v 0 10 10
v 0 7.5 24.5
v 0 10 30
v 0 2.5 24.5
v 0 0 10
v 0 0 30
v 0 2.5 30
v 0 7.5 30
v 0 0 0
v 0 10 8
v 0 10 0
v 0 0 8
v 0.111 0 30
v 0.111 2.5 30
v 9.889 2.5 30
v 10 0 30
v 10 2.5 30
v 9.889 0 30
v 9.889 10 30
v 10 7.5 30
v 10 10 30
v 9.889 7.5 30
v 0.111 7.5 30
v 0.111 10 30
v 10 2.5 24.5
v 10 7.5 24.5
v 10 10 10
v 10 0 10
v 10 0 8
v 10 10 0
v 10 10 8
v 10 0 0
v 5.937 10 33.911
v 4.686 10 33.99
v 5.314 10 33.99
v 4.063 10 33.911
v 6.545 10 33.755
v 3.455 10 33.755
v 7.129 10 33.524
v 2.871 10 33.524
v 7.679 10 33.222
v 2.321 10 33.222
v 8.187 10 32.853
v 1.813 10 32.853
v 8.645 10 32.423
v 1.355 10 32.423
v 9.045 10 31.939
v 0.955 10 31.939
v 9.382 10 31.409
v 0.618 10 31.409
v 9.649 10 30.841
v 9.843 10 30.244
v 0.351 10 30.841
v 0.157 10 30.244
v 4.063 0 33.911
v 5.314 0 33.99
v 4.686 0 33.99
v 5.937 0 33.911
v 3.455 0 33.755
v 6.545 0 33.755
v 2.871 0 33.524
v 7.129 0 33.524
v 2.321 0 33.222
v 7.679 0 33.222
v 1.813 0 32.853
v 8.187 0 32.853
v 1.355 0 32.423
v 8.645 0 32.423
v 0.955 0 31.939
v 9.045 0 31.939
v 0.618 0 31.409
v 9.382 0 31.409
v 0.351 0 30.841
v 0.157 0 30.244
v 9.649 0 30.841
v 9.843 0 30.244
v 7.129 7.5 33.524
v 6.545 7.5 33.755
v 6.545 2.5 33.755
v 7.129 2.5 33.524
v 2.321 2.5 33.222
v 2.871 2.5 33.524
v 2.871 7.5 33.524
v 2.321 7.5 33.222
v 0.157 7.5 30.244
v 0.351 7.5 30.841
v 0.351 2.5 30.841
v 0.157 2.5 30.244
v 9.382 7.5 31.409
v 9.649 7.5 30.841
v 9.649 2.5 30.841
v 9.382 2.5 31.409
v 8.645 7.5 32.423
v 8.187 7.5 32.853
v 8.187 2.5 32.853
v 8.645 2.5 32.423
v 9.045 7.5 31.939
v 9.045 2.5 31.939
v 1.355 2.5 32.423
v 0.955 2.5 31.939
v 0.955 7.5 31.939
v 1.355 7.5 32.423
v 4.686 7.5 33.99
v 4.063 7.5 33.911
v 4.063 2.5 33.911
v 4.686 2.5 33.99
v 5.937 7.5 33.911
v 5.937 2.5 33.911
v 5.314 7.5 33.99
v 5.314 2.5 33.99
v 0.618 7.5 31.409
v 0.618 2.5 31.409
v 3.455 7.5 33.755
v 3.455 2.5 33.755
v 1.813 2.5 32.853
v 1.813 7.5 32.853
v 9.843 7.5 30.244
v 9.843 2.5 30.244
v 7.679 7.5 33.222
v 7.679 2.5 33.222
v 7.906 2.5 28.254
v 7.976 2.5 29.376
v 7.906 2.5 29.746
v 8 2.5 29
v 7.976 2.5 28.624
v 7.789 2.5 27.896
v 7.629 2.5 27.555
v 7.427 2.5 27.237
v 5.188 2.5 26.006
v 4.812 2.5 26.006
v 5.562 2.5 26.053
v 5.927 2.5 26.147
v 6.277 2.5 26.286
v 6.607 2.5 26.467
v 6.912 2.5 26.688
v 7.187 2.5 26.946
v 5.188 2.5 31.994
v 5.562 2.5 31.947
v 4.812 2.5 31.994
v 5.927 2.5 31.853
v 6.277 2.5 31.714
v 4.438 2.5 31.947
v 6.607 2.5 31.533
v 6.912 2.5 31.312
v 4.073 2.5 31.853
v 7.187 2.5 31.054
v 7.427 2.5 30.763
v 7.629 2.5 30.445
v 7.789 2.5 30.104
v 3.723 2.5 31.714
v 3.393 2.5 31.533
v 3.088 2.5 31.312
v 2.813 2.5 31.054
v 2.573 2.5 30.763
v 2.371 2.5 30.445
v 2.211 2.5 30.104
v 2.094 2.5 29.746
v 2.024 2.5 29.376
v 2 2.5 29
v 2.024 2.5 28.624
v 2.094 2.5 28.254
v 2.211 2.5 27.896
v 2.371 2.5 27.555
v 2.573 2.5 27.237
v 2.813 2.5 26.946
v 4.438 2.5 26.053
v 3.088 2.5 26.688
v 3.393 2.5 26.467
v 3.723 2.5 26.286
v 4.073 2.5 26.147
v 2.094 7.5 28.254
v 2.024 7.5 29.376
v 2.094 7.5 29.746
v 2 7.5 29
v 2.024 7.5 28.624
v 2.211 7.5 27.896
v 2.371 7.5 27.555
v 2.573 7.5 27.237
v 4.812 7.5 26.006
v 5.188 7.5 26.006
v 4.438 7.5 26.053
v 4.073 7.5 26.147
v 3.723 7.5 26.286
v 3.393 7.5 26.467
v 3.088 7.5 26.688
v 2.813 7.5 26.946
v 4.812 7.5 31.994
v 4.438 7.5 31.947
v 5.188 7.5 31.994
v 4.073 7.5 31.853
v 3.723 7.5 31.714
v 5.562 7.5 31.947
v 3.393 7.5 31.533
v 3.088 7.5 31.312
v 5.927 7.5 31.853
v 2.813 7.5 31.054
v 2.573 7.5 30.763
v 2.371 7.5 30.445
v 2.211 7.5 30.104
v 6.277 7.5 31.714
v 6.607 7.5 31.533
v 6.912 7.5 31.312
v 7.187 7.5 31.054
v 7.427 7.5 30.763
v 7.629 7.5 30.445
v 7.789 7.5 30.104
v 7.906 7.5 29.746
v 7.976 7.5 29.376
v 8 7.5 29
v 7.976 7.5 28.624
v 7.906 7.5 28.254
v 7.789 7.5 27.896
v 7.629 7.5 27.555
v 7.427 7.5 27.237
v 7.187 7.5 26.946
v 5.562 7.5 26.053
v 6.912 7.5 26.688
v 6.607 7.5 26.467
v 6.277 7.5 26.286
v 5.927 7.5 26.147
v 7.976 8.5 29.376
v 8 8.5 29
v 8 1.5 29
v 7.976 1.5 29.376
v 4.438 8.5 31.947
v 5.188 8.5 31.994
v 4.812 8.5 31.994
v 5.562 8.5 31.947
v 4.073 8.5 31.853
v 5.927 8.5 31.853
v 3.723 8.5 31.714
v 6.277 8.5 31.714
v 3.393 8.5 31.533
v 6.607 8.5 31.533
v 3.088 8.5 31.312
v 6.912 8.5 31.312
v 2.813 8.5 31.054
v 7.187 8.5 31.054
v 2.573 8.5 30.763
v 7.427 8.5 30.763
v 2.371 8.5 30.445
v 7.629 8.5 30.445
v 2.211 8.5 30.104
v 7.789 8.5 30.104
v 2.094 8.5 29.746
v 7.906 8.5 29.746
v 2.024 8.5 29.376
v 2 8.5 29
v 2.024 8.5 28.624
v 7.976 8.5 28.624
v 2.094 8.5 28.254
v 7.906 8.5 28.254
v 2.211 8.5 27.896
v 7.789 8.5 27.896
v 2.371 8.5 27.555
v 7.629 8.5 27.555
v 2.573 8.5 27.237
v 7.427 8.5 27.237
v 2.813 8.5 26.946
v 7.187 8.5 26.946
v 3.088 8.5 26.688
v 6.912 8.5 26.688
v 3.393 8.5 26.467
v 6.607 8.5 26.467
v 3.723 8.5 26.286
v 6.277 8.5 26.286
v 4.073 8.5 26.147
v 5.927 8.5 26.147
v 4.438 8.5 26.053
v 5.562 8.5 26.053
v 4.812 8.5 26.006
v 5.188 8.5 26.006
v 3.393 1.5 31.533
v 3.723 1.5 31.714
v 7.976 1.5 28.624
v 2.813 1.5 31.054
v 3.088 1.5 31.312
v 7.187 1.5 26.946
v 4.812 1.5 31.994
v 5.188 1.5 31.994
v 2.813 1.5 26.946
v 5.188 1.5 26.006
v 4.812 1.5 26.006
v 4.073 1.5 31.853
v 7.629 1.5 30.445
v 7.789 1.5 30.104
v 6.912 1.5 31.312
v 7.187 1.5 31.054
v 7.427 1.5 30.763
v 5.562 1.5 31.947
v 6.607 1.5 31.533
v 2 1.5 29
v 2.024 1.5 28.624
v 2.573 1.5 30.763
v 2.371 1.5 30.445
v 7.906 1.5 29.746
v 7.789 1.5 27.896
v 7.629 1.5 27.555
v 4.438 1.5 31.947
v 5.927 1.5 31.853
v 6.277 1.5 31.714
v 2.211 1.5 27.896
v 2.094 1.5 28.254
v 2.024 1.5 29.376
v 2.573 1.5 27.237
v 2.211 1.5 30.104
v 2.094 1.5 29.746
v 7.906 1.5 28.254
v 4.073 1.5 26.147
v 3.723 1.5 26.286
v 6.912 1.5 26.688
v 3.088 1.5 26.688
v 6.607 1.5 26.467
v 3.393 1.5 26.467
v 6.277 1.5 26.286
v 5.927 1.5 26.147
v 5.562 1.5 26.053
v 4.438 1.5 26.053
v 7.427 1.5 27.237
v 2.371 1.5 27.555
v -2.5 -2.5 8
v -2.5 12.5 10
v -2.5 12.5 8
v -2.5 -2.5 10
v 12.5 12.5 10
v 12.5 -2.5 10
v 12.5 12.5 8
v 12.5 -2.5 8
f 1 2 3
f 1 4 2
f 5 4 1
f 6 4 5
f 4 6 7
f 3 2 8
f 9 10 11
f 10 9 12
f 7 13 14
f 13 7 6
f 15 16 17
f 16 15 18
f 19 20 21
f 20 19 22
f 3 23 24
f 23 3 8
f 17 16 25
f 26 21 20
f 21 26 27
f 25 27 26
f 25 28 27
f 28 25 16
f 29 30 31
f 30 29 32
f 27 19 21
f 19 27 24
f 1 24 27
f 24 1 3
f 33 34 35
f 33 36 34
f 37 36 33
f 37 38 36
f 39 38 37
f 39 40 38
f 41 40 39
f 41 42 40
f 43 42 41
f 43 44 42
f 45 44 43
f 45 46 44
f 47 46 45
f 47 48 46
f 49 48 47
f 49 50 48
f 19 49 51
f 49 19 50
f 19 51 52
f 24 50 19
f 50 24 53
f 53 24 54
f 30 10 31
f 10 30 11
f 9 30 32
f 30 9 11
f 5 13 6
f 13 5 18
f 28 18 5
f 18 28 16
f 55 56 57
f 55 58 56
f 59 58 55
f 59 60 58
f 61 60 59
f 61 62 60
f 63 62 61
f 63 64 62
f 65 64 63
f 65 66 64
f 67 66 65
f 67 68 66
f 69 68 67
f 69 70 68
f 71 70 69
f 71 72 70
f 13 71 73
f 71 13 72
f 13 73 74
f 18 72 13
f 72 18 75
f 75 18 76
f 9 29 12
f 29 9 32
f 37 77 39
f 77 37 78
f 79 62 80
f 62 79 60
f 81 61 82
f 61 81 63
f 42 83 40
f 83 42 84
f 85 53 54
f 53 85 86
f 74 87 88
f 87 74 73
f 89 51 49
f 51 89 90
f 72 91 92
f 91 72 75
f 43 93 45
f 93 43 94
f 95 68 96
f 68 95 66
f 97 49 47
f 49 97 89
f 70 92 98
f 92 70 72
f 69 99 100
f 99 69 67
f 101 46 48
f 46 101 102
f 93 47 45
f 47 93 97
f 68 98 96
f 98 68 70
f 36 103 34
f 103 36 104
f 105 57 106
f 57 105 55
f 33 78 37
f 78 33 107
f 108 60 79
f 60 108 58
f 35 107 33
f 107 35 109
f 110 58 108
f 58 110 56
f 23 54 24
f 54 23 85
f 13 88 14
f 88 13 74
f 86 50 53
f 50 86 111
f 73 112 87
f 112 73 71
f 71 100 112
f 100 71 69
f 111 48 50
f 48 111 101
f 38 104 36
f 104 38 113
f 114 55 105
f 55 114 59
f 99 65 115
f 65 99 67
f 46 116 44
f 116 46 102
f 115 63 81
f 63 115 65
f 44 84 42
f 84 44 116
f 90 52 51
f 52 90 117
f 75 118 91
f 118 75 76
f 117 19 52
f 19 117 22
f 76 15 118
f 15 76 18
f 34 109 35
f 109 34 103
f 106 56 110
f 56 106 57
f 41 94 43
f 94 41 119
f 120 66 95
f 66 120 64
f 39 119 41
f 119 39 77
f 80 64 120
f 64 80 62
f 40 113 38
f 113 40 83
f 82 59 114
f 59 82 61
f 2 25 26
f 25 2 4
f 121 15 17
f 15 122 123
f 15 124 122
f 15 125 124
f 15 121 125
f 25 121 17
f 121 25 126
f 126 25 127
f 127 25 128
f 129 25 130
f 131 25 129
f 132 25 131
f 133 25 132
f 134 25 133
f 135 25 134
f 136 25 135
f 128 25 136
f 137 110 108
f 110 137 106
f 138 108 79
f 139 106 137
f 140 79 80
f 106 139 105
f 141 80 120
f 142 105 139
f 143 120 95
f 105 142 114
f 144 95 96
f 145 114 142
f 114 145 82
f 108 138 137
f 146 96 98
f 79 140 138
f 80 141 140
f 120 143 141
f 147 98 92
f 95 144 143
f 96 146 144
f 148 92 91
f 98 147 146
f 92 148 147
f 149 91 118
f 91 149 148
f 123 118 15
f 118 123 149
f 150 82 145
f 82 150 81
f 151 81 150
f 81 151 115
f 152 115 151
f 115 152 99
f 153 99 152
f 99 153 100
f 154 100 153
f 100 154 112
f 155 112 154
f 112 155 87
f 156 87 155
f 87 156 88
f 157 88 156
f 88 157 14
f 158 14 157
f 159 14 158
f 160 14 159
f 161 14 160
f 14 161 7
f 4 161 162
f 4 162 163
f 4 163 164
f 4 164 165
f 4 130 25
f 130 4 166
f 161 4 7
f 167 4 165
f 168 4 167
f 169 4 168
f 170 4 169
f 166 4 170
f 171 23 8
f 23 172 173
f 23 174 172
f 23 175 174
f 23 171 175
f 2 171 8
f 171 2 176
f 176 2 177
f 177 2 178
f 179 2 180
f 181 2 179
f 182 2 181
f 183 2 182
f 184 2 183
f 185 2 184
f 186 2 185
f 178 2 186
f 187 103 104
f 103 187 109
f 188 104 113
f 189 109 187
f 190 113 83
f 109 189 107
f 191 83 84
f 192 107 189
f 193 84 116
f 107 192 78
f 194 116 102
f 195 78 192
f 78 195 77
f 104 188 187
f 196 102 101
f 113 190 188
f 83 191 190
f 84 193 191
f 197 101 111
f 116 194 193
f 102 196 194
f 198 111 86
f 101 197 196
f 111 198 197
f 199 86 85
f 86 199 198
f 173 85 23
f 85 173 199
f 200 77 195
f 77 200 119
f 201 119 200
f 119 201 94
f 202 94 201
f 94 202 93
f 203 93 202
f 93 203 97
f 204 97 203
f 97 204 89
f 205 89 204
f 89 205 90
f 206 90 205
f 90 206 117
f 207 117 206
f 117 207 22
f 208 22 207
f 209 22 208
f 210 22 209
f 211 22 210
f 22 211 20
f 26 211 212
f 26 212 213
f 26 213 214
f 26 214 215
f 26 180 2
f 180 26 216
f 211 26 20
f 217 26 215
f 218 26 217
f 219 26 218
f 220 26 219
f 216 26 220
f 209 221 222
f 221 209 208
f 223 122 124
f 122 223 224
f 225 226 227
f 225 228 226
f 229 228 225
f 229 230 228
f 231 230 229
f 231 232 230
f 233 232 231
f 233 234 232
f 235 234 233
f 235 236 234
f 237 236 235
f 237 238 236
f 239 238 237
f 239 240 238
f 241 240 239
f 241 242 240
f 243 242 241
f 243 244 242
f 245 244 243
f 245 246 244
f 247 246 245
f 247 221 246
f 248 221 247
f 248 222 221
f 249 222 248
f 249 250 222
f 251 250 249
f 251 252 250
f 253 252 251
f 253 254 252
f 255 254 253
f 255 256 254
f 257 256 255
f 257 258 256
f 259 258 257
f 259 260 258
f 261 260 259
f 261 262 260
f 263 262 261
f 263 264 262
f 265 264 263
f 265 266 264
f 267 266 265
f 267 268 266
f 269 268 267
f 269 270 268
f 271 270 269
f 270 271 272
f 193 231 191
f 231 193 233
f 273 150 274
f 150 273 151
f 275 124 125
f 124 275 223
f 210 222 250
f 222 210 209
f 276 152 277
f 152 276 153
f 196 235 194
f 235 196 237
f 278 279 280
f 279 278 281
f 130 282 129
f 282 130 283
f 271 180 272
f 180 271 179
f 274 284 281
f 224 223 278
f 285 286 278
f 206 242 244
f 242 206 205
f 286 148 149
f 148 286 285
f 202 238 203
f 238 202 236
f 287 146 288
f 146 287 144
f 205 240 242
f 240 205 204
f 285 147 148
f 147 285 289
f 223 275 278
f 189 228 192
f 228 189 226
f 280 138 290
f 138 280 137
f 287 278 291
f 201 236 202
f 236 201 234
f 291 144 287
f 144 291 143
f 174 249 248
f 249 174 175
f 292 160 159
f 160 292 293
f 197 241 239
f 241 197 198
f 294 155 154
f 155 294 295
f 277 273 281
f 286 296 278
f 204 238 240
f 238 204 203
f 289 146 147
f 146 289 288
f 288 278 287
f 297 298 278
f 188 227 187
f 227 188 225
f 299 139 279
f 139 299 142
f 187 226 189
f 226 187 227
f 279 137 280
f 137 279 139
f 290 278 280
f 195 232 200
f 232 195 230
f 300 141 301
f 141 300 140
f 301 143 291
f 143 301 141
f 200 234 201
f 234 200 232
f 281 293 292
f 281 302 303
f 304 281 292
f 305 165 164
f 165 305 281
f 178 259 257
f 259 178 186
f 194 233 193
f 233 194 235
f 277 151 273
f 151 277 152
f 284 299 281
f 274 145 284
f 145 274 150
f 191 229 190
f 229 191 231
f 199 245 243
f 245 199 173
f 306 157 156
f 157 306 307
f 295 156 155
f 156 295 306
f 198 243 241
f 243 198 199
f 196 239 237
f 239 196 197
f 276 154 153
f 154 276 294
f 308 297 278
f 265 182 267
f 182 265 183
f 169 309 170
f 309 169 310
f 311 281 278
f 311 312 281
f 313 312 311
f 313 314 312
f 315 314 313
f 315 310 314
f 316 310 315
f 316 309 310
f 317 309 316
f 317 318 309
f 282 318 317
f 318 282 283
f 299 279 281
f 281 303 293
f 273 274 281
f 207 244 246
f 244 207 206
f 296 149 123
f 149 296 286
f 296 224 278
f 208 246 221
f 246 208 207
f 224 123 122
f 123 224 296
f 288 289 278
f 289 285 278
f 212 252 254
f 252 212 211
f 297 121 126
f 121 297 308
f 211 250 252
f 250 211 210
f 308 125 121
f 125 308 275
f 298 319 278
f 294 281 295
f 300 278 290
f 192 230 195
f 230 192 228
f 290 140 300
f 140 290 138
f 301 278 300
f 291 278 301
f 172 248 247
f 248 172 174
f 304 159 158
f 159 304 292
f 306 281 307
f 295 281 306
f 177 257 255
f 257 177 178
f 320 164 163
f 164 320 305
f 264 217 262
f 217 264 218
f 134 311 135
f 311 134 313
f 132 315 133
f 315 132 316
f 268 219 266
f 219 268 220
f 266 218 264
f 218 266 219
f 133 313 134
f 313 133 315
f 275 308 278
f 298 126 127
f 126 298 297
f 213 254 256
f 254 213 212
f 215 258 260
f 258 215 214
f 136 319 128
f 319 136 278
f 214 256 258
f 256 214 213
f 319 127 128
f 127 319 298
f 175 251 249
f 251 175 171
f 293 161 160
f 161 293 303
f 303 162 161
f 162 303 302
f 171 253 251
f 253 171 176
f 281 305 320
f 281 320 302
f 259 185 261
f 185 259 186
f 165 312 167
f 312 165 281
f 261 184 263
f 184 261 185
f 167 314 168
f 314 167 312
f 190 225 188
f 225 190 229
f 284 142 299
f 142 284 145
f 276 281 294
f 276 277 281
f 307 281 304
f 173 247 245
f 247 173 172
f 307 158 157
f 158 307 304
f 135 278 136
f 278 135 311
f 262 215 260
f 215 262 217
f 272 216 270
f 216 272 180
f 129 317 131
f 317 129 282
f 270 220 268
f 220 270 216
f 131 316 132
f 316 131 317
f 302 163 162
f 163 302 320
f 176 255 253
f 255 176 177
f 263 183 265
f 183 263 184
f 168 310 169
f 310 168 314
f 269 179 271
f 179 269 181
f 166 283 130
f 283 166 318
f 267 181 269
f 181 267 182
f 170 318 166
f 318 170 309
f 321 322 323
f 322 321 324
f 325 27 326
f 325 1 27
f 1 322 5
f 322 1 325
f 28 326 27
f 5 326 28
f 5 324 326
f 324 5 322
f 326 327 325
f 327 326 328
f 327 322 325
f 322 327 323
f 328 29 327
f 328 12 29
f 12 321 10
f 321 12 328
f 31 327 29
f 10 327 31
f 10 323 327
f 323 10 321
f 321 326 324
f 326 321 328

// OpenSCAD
//componente singolo danneggiato.
difference(){
difference(){
union(){
cube([10,10,30]);//corpo centrale
translate([5,10,29])rotate([90,0,0])cylinder(10,5,5,$fn=50);//arco
}
translate([-1,2.5,24.5]) cube([12,5,10]);//parallelepipedo sottratto dal cilidro, per formare i due pezzi separati
}
translate([5,8.5,29])rotate([90,0,0])cylinder(7,3,3,$fn=50);//cerchi dentro l'arco
}
translate([-2.5,-2.5,8])cube([15,15,2]);//parallelepipedo posizionato a circa la metà
